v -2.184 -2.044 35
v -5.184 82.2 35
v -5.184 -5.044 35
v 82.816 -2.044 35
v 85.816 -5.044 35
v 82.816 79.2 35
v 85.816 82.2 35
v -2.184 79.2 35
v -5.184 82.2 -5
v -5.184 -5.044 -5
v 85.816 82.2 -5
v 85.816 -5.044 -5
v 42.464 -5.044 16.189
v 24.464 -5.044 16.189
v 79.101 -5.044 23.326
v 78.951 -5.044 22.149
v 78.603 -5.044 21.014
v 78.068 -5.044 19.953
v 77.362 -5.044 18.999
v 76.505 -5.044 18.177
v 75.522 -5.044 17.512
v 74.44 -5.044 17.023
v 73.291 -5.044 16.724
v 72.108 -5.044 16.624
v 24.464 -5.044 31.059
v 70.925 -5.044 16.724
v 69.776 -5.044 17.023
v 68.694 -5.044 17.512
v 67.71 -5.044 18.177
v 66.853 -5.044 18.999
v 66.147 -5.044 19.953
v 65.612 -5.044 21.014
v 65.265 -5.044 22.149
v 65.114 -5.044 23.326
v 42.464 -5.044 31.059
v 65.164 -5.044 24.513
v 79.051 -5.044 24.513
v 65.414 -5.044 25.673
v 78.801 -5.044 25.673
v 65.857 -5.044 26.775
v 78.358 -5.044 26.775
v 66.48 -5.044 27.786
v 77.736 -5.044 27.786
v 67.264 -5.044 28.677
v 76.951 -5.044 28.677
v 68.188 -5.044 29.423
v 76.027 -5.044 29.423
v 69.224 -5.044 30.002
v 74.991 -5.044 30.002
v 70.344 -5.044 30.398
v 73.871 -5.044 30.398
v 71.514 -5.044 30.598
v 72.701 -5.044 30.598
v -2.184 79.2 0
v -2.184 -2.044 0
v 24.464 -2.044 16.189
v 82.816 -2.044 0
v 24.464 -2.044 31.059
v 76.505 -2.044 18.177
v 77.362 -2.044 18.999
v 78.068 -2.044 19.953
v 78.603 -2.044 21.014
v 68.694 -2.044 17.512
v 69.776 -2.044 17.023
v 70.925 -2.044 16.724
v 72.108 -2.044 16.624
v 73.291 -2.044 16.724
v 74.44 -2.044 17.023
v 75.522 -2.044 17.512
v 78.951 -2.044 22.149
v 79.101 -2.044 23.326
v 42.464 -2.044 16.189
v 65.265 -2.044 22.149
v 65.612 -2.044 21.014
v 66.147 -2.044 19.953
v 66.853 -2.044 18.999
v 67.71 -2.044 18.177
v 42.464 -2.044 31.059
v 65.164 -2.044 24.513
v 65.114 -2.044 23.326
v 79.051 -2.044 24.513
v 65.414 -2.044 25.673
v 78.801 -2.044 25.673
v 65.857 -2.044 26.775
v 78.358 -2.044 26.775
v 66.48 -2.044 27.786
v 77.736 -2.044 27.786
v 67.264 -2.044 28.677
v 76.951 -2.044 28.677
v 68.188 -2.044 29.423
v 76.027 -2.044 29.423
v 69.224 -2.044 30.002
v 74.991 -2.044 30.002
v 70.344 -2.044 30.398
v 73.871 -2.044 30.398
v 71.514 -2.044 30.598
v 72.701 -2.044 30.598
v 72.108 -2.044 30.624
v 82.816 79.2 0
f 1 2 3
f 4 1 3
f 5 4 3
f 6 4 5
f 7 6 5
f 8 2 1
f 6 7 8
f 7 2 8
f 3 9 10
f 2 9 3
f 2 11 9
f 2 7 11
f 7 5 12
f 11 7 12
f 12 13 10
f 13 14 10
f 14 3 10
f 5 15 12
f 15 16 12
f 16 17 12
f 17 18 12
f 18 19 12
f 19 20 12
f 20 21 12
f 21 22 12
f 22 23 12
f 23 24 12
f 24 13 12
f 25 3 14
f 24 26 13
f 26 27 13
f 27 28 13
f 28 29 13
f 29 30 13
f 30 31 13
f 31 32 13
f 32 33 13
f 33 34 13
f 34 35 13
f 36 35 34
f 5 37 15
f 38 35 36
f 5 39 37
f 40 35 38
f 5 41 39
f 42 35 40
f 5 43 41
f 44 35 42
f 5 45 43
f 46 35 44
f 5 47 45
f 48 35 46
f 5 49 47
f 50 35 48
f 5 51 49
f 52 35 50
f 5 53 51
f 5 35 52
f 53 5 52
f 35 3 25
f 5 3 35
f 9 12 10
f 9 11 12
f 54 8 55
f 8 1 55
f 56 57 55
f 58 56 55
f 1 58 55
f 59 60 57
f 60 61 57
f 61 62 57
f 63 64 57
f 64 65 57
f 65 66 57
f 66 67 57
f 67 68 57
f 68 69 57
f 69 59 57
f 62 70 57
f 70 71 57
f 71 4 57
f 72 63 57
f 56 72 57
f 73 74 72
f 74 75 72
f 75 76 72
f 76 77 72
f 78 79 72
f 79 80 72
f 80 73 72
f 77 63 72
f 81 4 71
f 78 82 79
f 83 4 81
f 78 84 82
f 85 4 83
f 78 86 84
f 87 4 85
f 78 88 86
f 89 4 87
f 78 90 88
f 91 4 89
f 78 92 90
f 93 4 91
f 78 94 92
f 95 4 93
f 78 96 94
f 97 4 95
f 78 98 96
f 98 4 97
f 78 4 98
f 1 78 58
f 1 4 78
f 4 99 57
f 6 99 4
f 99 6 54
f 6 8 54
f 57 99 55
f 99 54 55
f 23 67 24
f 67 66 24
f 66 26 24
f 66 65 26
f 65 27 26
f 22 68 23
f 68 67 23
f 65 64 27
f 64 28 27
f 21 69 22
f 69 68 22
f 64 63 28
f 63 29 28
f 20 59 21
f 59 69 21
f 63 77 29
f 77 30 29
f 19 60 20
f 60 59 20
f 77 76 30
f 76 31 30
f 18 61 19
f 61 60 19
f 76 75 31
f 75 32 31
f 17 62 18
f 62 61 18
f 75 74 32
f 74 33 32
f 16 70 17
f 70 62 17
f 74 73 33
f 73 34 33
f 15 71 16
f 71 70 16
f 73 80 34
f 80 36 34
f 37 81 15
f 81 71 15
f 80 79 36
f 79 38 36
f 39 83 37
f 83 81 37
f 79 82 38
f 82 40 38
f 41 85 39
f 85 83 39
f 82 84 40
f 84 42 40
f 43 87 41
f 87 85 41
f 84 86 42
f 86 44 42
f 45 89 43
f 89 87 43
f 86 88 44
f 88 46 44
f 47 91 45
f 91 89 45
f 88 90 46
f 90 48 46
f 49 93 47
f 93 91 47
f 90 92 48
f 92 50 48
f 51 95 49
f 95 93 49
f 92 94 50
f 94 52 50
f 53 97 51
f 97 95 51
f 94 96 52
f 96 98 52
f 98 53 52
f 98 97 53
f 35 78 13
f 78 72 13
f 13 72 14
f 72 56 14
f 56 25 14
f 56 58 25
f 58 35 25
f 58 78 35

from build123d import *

# Parameters (mm, degrees)
SKETCH3_W                = 91
SKETCH3_H                = 87.244293111
BOSS_EXTRUDE1_DEPTH      = 35
BOSS_EXTRUDE1_DEPTH_BACK = 5
SKETCH2_W                = 85
SKETCH2_H                = 81.244293111
CUT_EXTRUDE1_DEPTH       = 41
CUT_EXTRUDE2_REACH       = 89.244
SKETCH5_R                = 7
SKETCH5_W                = 18
SKETCH5_H                = 14.87


with BuildPart() as part:
    # Sketch3 → Boss-Extrude1 (new body, two sides)
    with BuildSketch(Plane.XY) as boss_extrude1_sk:
        with Locations((40.316463084, 38.577850393)):
            Rectangle(SKETCH3_W, SKETCH3_H)
    extrude(amount=BOSS_EXTRUDE1_DEPTH)
    extrude(boss_extrude1_sk.sketch, amount=-BOSS_EXTRUDE1_DEPTH_BACK)

    # Sketch2 → Cut-Extrude1 (cut)
    with BuildSketch(Plane.XY):
        with Locations((40.316463084, 38.577850393)):
            Rectangle(SKETCH2_W, SKETCH2_H)
    extrude(amount=CUT_EXTRUDE1_DEPTH, mode=Mode.SUBTRACT)

    # Sketch5 → Cut-Extrude2 (cut, up to next)
    with BuildSketch(Plane.XZ.offset(5.044296163), mode=Mode.PRIVATE) as cut_extrude2_sk1:
        with Locations((72.107645341, 23.62352)):
            Circle(SKETCH5_R)
    cut_extrude2_tool1 = extrude(cut_extrude2_sk1.sketch, amount=-CUT_EXTRUDE2_REACH, mode=Mode.PRIVATE) & part.part
    add(cut_extrude2_tool1.solids().sort_by_distance((72.107645, -5.044296, 23.62352))[0], mode=Mode.SUBTRACT)
    # Sketch5 → Cut-Extrude2 (cut, up to next)
    with BuildSketch(Plane.XZ.offset(5.044296163), mode=Mode.PRIVATE) as cut_extrude2_sk2:
        with Locations((33.464005425, 23.62352)):
            Rectangle(SKETCH5_W, SKETCH5_H)
    cut_extrude2_tool2 = extrude(cut_extrude2_sk2.sketch, amount=-CUT_EXTRUDE2_REACH, mode=Mode.PRIVATE) & part.part
    add(cut_extrude2_tool2.solids().sort_by_distance((33.464005, -5.044296, 23.62352))[0], mode=Mode.SUBTRACT)


solid = part.part
